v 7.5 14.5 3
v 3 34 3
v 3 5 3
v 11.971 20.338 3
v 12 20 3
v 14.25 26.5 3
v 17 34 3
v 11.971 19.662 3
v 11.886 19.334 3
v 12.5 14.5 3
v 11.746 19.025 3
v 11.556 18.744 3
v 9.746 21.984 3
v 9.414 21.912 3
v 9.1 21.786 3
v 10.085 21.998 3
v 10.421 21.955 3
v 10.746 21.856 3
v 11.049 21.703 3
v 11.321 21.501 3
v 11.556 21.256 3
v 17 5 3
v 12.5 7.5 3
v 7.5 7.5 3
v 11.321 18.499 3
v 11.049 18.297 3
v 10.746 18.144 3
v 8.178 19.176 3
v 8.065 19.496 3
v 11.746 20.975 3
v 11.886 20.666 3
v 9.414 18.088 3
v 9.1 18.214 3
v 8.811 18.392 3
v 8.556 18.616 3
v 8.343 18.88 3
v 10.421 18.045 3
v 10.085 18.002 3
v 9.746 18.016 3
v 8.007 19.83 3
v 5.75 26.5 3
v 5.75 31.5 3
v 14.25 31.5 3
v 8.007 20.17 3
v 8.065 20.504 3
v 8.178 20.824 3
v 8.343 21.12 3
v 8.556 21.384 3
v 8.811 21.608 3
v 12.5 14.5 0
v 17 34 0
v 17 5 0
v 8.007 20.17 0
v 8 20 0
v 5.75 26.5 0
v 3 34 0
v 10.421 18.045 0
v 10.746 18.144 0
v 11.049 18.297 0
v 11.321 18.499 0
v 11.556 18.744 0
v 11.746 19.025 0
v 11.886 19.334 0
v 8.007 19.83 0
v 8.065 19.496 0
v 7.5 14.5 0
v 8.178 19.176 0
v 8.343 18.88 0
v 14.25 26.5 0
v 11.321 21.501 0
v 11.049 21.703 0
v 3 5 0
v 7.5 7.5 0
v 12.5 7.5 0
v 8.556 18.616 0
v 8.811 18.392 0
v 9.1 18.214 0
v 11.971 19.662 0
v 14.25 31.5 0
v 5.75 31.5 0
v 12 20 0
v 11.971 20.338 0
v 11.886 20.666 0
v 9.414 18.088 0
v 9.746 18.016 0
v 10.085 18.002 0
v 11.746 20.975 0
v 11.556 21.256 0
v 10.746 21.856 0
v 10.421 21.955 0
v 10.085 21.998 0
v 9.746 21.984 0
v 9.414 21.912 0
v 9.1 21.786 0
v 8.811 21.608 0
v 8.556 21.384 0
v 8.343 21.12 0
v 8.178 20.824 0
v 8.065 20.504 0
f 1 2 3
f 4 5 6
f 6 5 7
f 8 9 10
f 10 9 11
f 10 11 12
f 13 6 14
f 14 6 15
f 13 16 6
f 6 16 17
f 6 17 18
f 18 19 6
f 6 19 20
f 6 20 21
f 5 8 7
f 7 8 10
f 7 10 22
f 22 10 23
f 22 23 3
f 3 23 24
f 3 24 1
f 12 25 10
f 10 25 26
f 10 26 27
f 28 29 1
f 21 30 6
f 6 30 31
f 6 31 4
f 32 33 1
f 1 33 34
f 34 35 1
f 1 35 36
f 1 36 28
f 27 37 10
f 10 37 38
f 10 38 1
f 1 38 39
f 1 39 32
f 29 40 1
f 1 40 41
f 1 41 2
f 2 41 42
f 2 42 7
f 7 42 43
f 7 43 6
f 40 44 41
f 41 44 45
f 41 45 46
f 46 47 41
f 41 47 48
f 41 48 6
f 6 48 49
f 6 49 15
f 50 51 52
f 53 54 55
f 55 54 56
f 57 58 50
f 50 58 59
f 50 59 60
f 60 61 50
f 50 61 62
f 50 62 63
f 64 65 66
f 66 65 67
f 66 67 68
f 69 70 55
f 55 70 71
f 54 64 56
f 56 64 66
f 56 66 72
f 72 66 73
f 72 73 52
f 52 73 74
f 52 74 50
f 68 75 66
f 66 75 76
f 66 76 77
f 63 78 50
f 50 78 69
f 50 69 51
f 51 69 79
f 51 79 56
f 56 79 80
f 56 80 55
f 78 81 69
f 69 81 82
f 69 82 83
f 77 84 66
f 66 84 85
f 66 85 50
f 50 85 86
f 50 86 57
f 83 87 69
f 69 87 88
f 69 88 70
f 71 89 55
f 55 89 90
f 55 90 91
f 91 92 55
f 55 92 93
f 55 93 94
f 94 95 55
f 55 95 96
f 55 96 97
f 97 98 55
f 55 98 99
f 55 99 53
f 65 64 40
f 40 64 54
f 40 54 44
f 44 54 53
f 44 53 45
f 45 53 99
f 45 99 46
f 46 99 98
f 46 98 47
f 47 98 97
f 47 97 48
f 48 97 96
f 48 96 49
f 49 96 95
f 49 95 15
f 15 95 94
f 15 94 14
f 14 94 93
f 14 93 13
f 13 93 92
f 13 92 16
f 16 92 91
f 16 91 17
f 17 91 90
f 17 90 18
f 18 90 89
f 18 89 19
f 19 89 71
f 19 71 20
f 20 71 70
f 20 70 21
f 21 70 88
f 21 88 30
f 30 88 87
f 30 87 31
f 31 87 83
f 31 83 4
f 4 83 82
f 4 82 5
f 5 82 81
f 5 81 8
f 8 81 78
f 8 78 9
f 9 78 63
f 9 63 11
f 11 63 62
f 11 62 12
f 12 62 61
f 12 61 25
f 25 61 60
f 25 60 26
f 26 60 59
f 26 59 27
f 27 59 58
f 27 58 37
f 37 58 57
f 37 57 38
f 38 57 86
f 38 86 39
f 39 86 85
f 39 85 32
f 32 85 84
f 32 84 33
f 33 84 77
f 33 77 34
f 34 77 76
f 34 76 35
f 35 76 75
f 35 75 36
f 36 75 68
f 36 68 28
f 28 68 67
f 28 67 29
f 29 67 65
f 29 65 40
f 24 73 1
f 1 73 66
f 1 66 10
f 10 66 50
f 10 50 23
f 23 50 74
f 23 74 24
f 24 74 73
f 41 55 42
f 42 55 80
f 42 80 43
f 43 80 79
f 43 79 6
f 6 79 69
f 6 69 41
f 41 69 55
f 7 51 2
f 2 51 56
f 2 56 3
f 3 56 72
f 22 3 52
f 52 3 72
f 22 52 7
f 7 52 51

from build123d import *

# Parameters (mm, degrees)
ESQUISSE1_W             = 20
ESQUISSE1_H             = 40
BOSS_EXTRU_1_DEPTH      = 3
ENL_V_MAT_EXTRU_1_REACH = 5
ESQUISSE2_R             = 2
ESQUISSE2_W             = 8.5
ESQUISSE2_H             = 5
ESQUISSE2_W_2           = 5
ESQUISSE2_H_2           = 7
ENL_V_MAT_EXTRU_2_REACH = 5
ESQUISSE3_W             = 14
ESQUISSE3_H             = 5
ESQUISSE3_H_2           = 6


with BuildPart() as part:
    # Esquisse1 → Boss.-Extru.1 (new body)
    with BuildSketch(Plane.XY):
        with Locations((10, 20)):
            Rectangle(ESQUISSE1_W, ESQUISSE1_H)
    extrude(amount=BOSS_EXTRU_1_DEPTH)

    # Esquisse2 → Enlèv. mat.-Extru.1 (cut, up to next)
    with BuildSketch(Plane.XY.offset(3), mode=Mode.PRIVATE) as enl_v_mat_extru_1_sk1:
        with Locations((10, 20)):
            Circle(ESQUISSE2_R)
    enl_v_mat_extru_1_tool1 = extrude(enl_v_mat_extru_1_sk1.sketch, amount=-ENL_V_MAT_EXTRU_1_REACH, mode=Mode.PRIVATE) & part.part
    add(enl_v_mat_extru_1_tool1.solids().sort_by_distance((10, 20, 3))[0], mode=Mode.SUBTRACT)
    # Esquisse2 → Enlèv. mat.-Extru.1 (cut, up to next)
    with BuildSketch(Plane.XY.offset(3), mode=Mode.PRIVATE) as enl_v_mat_extru_1_sk2:
        with Locations((10, 29)):
            Rectangle(ESQUISSE2_W, ESQUISSE2_H)
    enl_v_mat_extru_1_tool2 = extrude(enl_v_mat_extru_1_sk2.sketch, amount=-ENL_V_MAT_EXTRU_1_REACH, mode=Mode.PRIVATE) & part.part
    add(enl_v_mat_extru_1_tool2.solids().sort_by_distance((10, 29, 3))[0], mode=Mode.SUBTRACT)
    # Esquisse2 → Enlèv. mat.-Extru.1 (cut, up to next)
    with BuildSketch(Plane.XY.offset(3), mode=Mode.PRIVATE) as enl_v_mat_extru_1_sk3:
        with Locations((10, 11)):
            Rectangle(ESQUISSE2_W_2, ESQUISSE2_H_2)
    enl_v_mat_extru_1_tool3 = extrude(enl_v_mat_extru_1_sk3.sketch, amount=-ENL_V_MAT_EXTRU_1_REACH, mode=Mode.PRIVATE) & part.part
    add(enl_v_mat_extru_1_tool3.solids().sort_by_distance((10, 11, 3))[0], mode=Mode.SUBTRACT)

    # Esquisse3 → Enlèv. mat.-Extru.2 (cut, up to next)
    with BuildSketch(Plane.XY.offset(3), mode=Mode.PRIVATE) as enl_v_mat_extru_2_sk1:
        Polygon((0, 40), (0, 0), (3, 0), (3, 5), (3, 34), (3, 40), align=None)
    enl_v_mat_extru_2_tool1 = extrude(enl_v_mat_extru_2_sk1.sketch, amount=-ENL_V_MAT_EXTRU_2_REACH, mode=Mode.PRIVATE) & part.part
    add(enl_v_mat_extru_2_tool1.solids().sort_by_distance((1.5, 20, 3))[0], mode=Mode.SUBTRACT)
    # Esquisse3 → Enlèv. mat.-Extru.2 (cut, up to next)
    with BuildSketch(Plane.XY.offset(3), mode=Mode.PRIVATE) as enl_v_mat_extru_2_sk2:
        Polygon((17, 5), (17, 0), (20, 0), (20, 40), (17, 40), (17, 34), align=None)
    enl_v_mat_extru_2_tool2 = extrude(enl_v_mat_extru_2_sk2.sketch, amount=-ENL_V_MAT_EXTRU_2_REACH, mode=Mode.PRIVATE) & part.part
    add(enl_v_mat_extru_2_tool2.solids().sort_by_distance((18.5, 20, 3))[0], mode=Mode.SUBTRACT)
    # Esquisse3 → Enlèv. mat.-Extru.2 (cut, up to next)
    with BuildSketch(Plane.XY.offset(3), mode=Mode.PRIVATE) as enl_v_mat_extru_2_sk3:
        with Locations((10, 2.5)):
            Rectangle(ESQUISSE3_W, ESQUISSE3_H)
    enl_v_mat_extru_2_tool3 = extrude(enl_v_mat_extru_2_sk3.sketch, amount=-ENL_V_MAT_EXTRU_2_REACH, mode=Mode.PRIVATE) & part.part
    add(enl_v_mat_extru_2_tool3.solids().sort_by_distance((10, 2.5, 3))[0], mode=Mode.SUBTRACT)
    # Esquisse3 → Enlèv. mat.-Extru.2 (cut, up to next)
    with BuildSketch(Plane.XY.offset(3), mode=Mode.PRIVATE) as enl_v_mat_extru_2_sk4:
        with Locations((10, 37)):
            Rectangle(ESQUISSE3_W, ESQUISSE3_H_2)
    enl_v_mat_extru_2_tool4 = extrude(enl_v_mat_extru_2_sk4.sketch, amount=-ENL_V_MAT_EXTRU_2_REACH, mode=Mode.PRIVATE) & part.part
    add(enl_v_mat_extru_2_tool4.solids().sort_by_distance((10, 37, 3))[0], mode=Mode.SUBTRACT)


solid = part.part
